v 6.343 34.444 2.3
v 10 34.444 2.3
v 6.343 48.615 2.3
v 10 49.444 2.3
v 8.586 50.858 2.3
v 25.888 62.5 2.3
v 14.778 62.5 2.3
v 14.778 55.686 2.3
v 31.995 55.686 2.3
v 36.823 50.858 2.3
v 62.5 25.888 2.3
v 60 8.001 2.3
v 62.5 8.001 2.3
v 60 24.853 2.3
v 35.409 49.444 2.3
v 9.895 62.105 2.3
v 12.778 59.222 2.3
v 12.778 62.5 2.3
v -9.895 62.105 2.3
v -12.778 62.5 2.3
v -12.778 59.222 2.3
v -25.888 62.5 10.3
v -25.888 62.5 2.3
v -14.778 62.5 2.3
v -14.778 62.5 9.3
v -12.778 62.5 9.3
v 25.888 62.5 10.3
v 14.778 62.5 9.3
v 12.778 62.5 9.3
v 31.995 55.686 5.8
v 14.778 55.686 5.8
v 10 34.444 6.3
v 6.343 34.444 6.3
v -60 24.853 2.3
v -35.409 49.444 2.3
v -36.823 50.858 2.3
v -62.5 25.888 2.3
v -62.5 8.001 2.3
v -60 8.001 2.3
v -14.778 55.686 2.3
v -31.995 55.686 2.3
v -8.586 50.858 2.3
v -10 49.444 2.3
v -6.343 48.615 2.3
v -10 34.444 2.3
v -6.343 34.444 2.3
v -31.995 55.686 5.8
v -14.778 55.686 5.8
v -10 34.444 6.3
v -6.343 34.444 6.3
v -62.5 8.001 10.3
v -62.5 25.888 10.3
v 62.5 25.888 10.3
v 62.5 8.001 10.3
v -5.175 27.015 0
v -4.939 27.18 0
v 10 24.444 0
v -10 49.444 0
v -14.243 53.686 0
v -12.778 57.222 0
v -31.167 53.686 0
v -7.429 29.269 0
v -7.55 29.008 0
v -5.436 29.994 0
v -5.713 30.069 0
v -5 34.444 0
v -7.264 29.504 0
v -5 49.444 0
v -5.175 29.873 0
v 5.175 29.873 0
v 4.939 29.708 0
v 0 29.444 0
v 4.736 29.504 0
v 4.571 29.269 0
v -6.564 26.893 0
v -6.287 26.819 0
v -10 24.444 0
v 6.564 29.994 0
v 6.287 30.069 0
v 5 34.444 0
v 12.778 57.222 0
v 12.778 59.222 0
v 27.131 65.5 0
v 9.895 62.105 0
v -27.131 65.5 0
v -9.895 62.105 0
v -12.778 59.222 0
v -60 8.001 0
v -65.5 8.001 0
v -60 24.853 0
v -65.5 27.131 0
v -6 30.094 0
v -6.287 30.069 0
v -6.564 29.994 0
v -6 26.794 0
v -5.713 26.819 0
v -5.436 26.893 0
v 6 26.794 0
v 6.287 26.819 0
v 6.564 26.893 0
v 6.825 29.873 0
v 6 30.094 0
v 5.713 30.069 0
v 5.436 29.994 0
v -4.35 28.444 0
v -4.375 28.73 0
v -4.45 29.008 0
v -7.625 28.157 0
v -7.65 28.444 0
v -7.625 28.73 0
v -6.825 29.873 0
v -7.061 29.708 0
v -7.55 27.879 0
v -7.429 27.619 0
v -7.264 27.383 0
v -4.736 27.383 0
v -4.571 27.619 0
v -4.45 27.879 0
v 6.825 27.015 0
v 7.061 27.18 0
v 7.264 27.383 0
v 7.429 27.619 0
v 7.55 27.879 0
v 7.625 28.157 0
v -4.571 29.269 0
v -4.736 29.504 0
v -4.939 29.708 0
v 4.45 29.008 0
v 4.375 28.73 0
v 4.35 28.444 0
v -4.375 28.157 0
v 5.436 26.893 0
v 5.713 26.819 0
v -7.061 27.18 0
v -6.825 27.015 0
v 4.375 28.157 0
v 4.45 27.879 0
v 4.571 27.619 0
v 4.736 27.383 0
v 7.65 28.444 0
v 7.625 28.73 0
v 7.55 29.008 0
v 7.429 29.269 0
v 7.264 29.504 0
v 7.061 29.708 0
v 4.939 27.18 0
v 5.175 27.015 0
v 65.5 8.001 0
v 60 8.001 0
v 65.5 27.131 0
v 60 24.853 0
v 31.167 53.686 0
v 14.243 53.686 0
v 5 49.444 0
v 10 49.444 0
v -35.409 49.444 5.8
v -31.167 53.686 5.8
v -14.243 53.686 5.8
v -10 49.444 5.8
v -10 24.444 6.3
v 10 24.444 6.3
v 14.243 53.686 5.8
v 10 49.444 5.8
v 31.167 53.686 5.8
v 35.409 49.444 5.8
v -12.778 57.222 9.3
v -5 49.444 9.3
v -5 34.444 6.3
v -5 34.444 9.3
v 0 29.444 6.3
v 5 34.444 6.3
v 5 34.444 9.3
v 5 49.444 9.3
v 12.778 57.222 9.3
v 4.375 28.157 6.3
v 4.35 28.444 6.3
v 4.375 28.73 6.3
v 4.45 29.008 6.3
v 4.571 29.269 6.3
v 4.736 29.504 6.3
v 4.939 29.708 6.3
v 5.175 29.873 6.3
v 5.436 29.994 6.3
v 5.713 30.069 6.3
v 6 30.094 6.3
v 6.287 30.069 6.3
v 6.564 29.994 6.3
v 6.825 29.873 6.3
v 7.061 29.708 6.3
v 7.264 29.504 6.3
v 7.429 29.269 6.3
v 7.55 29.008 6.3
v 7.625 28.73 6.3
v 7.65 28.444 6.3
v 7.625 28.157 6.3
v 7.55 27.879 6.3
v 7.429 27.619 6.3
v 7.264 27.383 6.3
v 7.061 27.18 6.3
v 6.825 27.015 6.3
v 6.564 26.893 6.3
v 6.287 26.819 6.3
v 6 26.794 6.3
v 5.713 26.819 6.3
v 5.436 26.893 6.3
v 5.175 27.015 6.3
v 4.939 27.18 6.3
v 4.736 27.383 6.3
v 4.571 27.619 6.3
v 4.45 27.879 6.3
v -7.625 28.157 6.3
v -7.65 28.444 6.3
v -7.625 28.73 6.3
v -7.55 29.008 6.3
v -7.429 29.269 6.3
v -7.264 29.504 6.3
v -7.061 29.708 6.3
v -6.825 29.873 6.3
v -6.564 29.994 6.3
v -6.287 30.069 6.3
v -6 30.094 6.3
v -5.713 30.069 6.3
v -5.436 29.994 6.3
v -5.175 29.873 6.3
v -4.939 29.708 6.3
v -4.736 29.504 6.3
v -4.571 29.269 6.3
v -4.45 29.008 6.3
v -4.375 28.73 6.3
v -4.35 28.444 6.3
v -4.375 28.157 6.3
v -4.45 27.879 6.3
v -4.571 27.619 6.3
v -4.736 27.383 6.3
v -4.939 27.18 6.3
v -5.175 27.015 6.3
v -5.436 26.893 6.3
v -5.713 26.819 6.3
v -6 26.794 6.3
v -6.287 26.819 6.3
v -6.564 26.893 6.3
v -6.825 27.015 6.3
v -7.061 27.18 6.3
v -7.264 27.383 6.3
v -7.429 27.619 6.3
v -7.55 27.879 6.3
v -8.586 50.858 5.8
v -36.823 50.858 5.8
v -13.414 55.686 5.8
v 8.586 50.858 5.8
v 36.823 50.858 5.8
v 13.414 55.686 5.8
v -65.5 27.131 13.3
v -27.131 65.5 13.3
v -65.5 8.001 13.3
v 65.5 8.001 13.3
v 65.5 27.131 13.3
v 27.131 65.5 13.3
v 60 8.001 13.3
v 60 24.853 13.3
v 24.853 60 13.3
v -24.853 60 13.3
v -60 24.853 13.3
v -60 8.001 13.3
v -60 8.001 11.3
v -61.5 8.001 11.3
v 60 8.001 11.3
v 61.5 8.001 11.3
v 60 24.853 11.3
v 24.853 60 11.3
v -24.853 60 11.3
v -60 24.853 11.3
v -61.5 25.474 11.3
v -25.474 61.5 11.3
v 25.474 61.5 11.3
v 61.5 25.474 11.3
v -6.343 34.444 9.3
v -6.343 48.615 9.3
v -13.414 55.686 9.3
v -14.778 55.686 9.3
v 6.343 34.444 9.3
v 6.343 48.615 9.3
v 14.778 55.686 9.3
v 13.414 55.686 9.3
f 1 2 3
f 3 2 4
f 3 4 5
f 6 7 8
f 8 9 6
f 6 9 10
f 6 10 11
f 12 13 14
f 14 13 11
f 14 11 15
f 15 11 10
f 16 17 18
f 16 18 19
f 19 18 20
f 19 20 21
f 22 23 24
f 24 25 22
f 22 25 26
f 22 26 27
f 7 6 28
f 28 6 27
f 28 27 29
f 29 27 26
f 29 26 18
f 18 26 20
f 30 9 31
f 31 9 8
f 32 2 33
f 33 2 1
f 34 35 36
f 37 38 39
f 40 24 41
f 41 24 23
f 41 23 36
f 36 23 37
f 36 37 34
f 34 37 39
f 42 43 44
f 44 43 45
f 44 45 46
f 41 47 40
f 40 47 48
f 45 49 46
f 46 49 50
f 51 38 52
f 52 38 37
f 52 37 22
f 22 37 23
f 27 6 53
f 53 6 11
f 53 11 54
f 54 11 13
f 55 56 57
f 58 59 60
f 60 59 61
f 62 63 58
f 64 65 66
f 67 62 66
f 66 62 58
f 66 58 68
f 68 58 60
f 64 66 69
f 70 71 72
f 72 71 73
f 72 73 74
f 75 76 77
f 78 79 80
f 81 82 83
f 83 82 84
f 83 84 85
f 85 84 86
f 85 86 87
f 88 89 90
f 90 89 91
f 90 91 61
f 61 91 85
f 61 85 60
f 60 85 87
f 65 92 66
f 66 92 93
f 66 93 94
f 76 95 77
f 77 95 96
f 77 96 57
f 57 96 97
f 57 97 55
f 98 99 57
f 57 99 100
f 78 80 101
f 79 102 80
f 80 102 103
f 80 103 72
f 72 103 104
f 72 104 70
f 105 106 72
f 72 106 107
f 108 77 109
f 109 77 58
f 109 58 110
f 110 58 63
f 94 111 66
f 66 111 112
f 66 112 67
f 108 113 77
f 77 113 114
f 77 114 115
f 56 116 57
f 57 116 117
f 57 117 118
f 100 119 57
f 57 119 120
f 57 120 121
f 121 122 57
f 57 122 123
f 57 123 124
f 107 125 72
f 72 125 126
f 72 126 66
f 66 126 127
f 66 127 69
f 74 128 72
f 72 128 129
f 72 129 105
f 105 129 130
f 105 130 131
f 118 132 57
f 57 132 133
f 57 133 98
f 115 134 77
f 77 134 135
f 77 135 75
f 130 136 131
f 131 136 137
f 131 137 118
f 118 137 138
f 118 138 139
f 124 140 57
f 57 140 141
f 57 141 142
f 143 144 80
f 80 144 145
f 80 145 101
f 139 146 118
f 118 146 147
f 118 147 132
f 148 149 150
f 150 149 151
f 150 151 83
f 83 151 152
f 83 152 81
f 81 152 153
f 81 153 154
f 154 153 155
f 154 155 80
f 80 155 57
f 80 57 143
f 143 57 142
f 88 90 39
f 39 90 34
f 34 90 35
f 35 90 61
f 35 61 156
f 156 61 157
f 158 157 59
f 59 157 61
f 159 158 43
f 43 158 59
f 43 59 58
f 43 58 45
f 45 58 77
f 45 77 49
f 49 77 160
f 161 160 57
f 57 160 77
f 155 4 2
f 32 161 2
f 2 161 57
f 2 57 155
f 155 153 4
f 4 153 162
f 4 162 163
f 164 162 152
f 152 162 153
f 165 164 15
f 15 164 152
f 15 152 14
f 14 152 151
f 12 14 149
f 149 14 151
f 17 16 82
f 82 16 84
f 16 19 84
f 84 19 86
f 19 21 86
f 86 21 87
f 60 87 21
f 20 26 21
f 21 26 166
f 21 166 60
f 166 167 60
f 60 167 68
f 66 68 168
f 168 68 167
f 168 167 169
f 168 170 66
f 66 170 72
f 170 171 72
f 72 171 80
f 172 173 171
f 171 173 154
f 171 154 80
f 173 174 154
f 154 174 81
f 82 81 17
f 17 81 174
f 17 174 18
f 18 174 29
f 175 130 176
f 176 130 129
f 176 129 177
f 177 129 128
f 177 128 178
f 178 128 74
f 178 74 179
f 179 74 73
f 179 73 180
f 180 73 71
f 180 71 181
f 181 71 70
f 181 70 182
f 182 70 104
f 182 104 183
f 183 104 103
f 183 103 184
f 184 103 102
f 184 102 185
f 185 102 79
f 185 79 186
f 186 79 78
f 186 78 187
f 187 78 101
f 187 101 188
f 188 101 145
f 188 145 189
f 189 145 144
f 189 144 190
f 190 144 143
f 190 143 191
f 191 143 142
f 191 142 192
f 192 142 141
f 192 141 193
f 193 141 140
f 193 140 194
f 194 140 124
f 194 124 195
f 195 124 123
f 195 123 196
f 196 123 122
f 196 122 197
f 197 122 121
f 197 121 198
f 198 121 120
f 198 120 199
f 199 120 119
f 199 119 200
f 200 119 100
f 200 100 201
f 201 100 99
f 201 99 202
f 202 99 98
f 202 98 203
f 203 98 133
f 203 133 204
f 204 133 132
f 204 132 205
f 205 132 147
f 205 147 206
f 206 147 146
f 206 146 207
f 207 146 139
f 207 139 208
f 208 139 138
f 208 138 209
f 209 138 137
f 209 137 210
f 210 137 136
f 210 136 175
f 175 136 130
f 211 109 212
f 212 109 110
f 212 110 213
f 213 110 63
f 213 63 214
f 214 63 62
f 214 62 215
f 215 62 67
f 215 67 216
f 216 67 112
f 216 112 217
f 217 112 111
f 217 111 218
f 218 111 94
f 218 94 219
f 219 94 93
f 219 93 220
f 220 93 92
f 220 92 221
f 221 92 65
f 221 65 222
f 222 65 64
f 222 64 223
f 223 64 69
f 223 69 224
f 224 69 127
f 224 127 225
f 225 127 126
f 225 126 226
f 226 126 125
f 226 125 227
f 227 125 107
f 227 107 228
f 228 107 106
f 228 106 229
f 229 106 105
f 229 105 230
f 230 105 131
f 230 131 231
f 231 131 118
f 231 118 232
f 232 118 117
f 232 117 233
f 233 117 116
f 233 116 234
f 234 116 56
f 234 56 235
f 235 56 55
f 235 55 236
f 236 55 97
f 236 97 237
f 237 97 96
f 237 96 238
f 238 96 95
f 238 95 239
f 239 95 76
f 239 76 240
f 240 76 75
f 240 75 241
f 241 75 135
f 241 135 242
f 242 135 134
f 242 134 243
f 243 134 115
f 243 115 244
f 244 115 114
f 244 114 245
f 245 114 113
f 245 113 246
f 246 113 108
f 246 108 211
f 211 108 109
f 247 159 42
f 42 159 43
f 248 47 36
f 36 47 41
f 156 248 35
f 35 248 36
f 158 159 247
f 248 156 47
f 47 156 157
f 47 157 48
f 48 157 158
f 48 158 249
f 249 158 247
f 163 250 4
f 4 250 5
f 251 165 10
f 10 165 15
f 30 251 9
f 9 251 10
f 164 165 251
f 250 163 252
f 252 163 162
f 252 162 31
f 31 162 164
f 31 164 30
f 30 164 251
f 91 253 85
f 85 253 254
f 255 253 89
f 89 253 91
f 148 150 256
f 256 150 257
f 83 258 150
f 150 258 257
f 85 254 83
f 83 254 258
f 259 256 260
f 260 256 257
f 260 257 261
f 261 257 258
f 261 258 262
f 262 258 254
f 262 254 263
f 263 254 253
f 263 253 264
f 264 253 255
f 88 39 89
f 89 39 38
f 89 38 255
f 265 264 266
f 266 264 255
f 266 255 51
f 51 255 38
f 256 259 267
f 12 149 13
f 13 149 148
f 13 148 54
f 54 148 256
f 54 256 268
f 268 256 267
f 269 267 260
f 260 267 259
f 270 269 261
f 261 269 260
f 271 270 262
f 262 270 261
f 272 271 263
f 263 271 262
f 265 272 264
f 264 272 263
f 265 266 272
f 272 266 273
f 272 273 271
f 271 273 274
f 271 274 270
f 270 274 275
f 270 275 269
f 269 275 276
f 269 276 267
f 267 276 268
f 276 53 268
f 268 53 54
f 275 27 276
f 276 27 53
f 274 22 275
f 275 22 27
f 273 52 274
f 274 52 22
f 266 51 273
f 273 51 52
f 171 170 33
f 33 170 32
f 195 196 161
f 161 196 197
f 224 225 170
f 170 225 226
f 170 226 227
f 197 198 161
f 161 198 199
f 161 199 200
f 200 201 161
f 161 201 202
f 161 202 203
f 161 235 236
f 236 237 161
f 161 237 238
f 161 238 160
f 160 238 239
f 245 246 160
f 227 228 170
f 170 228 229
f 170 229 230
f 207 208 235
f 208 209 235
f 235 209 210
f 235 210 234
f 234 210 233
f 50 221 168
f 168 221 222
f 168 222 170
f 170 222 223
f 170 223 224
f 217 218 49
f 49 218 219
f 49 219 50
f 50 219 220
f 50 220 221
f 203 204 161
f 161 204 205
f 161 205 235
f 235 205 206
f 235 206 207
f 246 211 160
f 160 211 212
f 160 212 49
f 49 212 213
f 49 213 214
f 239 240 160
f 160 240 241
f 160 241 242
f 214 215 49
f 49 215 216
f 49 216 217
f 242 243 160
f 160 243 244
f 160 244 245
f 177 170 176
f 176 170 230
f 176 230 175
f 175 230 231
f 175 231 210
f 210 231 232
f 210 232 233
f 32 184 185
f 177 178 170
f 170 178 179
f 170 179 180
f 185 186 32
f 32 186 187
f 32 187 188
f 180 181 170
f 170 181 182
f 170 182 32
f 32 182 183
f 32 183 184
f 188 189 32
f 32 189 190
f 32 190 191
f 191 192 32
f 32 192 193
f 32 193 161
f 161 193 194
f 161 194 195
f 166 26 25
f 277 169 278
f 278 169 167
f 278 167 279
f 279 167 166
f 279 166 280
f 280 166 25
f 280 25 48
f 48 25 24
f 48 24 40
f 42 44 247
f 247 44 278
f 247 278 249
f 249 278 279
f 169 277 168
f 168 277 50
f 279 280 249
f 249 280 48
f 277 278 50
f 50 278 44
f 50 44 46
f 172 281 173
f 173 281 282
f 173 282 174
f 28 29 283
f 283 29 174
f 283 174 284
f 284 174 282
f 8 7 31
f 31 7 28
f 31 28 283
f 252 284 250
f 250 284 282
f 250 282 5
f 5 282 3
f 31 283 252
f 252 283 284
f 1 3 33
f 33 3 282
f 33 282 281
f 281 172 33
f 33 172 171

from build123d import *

# Parameters (mm, degrees)
ESBO_O4_R                = 1.65
RESSALTO_EXTRUS_O1_DEPTH = 2.3
RESSALTO_EXTRUS_O2_DEPTH = 3.5
RESSALTO_EXTRUS_O3_DEPTH = 11
CORTE_EXTRUS_O1_DEPTH    = 10.5
CORTE_EXTRUS_O2_DEPTH    = 40.5
RESSALTO_EXTRUS_O4_DEPTH = 2
CHANFRO1_SIZE            = 1
ESBO_O11_R               = 1.65
RESSALTO_EXTRUS_O5_DEPTH = 4
RESSALTO_EXTRUS_O6_DEPTH = 7


with BuildPart() as part:
    # Esboço4 → Ressalto-extrusão1 (new body)
    with BuildSketch(Plane.XY):
        Polygon((70, 0), (70, 28.994949366), (28.994949366, 70), (-28.994949366, 70), (-70, 28.994949366), (-70, 0), (-60, 0), (-60, 24.852813742), (-42.426406871, 42.426406871), (-31.166522241, 53.686291501), (-14.242640687, 53.686291501), (-10, 49.443650814), (-10, 24.443650814), (10, 24.443650814), (10, 49.443650814), (14.242640687, 53.686291501), (31.166522241, 53.686291501), (42.426406871, 42.426406871), (60, 24.852813742), (60, 0), align=None)
        with Locations((6, 28.443650814)):
            Circle(ESBO_O4_R, mode=Mode.SUBTRACT)
        with Locations(Location((-6, 28.443650814, 0), (0, 0, 180))):
            Circle(ESBO_O4_R, mode=Mode.SUBTRACT)
        Polygon((-9.894556364, 62.105443636), (9.894556364, 62.105443636), (12.778174593, 59.221825407), (12.778174593, 57.221825407), (5, 49.443650814), (5, 34.443650814), (0, 29.443650814), (-5, 34.443650814), (-5, 49.443650814), (-12.778174593, 57.221825407), (-12.778174593, 59.221825407), align=None, mode=Mode.SUBTRACT)
    extrude(amount=RESSALTO_EXTRUS_O1_DEPTH)

    # Esboço6 → Ressalto-extrusão2 (add)
    with BuildSketch(Plane.XY.offset(2.3)):
        Polygon((-10, 49.443650814), (-14.242640687, 53.686291501), (-31.166522241, 53.686291501), (-35.409162928, 49.443650814), (-36.823376491, 50.857864376), (-31.994949366, 55.686291501), (-31.166522241, 55.686291501), (-13.414213562, 55.686291501), (-8.585786438, 50.857864376), align=None)
        Polygon((8.585786438, 50.857864376), (13.414213562, 55.686291501), (31.166522241, 55.686291501), (31.994949366, 55.686291501), (36.823376491, 50.857864376), (35.409162928, 49.443650814), (31.166522241, 53.686291501), (14.242640687, 53.686291501), (10, 49.443650814), align=None)
    extrude(amount=RESSALTO_EXTRUS_O2_DEPTH)

    # Esboço7 → Ressalto-extrusão3 (add)
    with BuildSketch(Plane.XY.offset(2.3)):
        Polygon((27.130988335, 65.5), (-27.130988335, 65.5), (-65.5, 27.130988335), (-65.5, 0), (-62.5, 0), (-62.5, 25.888347648), (-25.888347648, 62.5), (25.888347648, 62.5), (62.5, 25.888347648), (62.5, 0), (65.5, 0), (65.5, 27.130988335), align=None)
    extrude(amount=RESSALTO_EXTRUS_O3_DEPTH)

    # Esboço8 → Corte-extrusão1 (cut)
    with BuildSketch(Plane.XY.offset(2.3)):
        Polygon((-65.5, 0), (-65.5, 27.130988335), (-27.130988335, 65.5), (27.130988335, 65.5), (65.5, 27.130988335), (65.5, 0), (65.5, -7.47317723), (91.763905533, -7.47317723), (91.763905533, 81.084833901), (-91.763905533, 81.084833901), (-91.763905533, -7.47317723), (-65.5, -7.47317723), align=None)
    extrude(amount=-CORTE_EXTRUS_O1_DEPTH, mode=Mode.SUBTRACT)

    # Esboço9 → Corte-extrusão2 (cut)
    with BuildSketch(Plane(origin=(0, 0, 0), x_dir=(-1, 0, 0), z_dir=(0, 0, -1))):
        Polygon((60, 0), (70, 0), (70, 8.000623443), (-93.298268705, 8.000623443), (-93.298268705, 0), align=None)
    extrude(amount=-CORTE_EXTRUS_O2_DEPTH, mode=Mode.SUBTRACT)

    # Esboço10 → Ressalto-extrusão4 (add)
    with BuildSketch(Plane.XY.offset(13.3)):
        Polygon((-62.5, 8.000623443), (-62.5, 25.888347648), (-25.888347648, 62.5), (25.888347648, 62.5), (62.5, 25.888347648), (62.5, 8.000623443), (60, 8.000623443), (60, 24.852813742), (24.852813742, 60), (-24.852813742, 60), (-60, 24.852813742), (-60, 8.000623443), align=None)
    extrude(amount=-RESSALTO_EXTRUS_O4_DEPTH)

    # Chanfro1
    chanfro1_edges = [part.edges().sort_by_distance(p)[0] for p in [
        (-62.5, 16.944485546, 11.3),
        (-44.194173824, 44.194173824, 11.3),
        (0, 62.5, 11.3),
        (44.194173824, 44.194173824, 11.3),
        (62.5, 16.944485546, 11.3),
    ]]
    chamfer(chanfro1_edges, length=CHANFRO1_SIZE)

    # Esboço11 → Ressalto-extrusão5 (add)
    with BuildSketch(Plane.XY.offset(2.3)):
        Polygon((-10, 24.443650814), (10, 24.443650814), (10, 34.443650814), (5, 34.443650814), (0, 29.443650814), (-5, 34.443650814), (-10, 34.443650814), align=None)
        with Locations(Location((-6, 28.443650814, 0), (0, 0, 180))):
            Circle(ESBO_O11_R, mode=Mode.SUBTRACT)
        with Locations((6, 28.443650814)):
            Circle(ESBO_O11_R, mode=Mode.SUBTRACT)
    extrude(amount=RESSALTO_EXTRUS_O5_DEPTH)

    # Esboço12 → Ressalto-extrusão6 (add)
    with BuildSketch(Plane.XY.offset(2.3)):
        Polygon((-5, 34.443650814), (-5, 49.443650814), (-12.778174593, 57.221825407), (-12.778174593, 62.936367936), (-14.778174593, 62.936367936), (-14.778174593, 55.686291501), (-13.414213562, 55.686291501), (-6.343145751, 48.615223689), (-6.343145751, 34.443650814), align=None)
        Polygon((6.343145751, 34.443650814), (5, 34.443650814), (5, 49.443650814), (12.778174593, 57.221825407), (12.778174593, 62.936367936), (14.778174593, 62.936367936), (14.778174593, 55.686291501), (13.414213562, 55.686291501), (6.343145751, 48.615223689), align=None)
    extrude(amount=RESSALTO_EXTRUS_O6_DEPTH)


solid = part.part
